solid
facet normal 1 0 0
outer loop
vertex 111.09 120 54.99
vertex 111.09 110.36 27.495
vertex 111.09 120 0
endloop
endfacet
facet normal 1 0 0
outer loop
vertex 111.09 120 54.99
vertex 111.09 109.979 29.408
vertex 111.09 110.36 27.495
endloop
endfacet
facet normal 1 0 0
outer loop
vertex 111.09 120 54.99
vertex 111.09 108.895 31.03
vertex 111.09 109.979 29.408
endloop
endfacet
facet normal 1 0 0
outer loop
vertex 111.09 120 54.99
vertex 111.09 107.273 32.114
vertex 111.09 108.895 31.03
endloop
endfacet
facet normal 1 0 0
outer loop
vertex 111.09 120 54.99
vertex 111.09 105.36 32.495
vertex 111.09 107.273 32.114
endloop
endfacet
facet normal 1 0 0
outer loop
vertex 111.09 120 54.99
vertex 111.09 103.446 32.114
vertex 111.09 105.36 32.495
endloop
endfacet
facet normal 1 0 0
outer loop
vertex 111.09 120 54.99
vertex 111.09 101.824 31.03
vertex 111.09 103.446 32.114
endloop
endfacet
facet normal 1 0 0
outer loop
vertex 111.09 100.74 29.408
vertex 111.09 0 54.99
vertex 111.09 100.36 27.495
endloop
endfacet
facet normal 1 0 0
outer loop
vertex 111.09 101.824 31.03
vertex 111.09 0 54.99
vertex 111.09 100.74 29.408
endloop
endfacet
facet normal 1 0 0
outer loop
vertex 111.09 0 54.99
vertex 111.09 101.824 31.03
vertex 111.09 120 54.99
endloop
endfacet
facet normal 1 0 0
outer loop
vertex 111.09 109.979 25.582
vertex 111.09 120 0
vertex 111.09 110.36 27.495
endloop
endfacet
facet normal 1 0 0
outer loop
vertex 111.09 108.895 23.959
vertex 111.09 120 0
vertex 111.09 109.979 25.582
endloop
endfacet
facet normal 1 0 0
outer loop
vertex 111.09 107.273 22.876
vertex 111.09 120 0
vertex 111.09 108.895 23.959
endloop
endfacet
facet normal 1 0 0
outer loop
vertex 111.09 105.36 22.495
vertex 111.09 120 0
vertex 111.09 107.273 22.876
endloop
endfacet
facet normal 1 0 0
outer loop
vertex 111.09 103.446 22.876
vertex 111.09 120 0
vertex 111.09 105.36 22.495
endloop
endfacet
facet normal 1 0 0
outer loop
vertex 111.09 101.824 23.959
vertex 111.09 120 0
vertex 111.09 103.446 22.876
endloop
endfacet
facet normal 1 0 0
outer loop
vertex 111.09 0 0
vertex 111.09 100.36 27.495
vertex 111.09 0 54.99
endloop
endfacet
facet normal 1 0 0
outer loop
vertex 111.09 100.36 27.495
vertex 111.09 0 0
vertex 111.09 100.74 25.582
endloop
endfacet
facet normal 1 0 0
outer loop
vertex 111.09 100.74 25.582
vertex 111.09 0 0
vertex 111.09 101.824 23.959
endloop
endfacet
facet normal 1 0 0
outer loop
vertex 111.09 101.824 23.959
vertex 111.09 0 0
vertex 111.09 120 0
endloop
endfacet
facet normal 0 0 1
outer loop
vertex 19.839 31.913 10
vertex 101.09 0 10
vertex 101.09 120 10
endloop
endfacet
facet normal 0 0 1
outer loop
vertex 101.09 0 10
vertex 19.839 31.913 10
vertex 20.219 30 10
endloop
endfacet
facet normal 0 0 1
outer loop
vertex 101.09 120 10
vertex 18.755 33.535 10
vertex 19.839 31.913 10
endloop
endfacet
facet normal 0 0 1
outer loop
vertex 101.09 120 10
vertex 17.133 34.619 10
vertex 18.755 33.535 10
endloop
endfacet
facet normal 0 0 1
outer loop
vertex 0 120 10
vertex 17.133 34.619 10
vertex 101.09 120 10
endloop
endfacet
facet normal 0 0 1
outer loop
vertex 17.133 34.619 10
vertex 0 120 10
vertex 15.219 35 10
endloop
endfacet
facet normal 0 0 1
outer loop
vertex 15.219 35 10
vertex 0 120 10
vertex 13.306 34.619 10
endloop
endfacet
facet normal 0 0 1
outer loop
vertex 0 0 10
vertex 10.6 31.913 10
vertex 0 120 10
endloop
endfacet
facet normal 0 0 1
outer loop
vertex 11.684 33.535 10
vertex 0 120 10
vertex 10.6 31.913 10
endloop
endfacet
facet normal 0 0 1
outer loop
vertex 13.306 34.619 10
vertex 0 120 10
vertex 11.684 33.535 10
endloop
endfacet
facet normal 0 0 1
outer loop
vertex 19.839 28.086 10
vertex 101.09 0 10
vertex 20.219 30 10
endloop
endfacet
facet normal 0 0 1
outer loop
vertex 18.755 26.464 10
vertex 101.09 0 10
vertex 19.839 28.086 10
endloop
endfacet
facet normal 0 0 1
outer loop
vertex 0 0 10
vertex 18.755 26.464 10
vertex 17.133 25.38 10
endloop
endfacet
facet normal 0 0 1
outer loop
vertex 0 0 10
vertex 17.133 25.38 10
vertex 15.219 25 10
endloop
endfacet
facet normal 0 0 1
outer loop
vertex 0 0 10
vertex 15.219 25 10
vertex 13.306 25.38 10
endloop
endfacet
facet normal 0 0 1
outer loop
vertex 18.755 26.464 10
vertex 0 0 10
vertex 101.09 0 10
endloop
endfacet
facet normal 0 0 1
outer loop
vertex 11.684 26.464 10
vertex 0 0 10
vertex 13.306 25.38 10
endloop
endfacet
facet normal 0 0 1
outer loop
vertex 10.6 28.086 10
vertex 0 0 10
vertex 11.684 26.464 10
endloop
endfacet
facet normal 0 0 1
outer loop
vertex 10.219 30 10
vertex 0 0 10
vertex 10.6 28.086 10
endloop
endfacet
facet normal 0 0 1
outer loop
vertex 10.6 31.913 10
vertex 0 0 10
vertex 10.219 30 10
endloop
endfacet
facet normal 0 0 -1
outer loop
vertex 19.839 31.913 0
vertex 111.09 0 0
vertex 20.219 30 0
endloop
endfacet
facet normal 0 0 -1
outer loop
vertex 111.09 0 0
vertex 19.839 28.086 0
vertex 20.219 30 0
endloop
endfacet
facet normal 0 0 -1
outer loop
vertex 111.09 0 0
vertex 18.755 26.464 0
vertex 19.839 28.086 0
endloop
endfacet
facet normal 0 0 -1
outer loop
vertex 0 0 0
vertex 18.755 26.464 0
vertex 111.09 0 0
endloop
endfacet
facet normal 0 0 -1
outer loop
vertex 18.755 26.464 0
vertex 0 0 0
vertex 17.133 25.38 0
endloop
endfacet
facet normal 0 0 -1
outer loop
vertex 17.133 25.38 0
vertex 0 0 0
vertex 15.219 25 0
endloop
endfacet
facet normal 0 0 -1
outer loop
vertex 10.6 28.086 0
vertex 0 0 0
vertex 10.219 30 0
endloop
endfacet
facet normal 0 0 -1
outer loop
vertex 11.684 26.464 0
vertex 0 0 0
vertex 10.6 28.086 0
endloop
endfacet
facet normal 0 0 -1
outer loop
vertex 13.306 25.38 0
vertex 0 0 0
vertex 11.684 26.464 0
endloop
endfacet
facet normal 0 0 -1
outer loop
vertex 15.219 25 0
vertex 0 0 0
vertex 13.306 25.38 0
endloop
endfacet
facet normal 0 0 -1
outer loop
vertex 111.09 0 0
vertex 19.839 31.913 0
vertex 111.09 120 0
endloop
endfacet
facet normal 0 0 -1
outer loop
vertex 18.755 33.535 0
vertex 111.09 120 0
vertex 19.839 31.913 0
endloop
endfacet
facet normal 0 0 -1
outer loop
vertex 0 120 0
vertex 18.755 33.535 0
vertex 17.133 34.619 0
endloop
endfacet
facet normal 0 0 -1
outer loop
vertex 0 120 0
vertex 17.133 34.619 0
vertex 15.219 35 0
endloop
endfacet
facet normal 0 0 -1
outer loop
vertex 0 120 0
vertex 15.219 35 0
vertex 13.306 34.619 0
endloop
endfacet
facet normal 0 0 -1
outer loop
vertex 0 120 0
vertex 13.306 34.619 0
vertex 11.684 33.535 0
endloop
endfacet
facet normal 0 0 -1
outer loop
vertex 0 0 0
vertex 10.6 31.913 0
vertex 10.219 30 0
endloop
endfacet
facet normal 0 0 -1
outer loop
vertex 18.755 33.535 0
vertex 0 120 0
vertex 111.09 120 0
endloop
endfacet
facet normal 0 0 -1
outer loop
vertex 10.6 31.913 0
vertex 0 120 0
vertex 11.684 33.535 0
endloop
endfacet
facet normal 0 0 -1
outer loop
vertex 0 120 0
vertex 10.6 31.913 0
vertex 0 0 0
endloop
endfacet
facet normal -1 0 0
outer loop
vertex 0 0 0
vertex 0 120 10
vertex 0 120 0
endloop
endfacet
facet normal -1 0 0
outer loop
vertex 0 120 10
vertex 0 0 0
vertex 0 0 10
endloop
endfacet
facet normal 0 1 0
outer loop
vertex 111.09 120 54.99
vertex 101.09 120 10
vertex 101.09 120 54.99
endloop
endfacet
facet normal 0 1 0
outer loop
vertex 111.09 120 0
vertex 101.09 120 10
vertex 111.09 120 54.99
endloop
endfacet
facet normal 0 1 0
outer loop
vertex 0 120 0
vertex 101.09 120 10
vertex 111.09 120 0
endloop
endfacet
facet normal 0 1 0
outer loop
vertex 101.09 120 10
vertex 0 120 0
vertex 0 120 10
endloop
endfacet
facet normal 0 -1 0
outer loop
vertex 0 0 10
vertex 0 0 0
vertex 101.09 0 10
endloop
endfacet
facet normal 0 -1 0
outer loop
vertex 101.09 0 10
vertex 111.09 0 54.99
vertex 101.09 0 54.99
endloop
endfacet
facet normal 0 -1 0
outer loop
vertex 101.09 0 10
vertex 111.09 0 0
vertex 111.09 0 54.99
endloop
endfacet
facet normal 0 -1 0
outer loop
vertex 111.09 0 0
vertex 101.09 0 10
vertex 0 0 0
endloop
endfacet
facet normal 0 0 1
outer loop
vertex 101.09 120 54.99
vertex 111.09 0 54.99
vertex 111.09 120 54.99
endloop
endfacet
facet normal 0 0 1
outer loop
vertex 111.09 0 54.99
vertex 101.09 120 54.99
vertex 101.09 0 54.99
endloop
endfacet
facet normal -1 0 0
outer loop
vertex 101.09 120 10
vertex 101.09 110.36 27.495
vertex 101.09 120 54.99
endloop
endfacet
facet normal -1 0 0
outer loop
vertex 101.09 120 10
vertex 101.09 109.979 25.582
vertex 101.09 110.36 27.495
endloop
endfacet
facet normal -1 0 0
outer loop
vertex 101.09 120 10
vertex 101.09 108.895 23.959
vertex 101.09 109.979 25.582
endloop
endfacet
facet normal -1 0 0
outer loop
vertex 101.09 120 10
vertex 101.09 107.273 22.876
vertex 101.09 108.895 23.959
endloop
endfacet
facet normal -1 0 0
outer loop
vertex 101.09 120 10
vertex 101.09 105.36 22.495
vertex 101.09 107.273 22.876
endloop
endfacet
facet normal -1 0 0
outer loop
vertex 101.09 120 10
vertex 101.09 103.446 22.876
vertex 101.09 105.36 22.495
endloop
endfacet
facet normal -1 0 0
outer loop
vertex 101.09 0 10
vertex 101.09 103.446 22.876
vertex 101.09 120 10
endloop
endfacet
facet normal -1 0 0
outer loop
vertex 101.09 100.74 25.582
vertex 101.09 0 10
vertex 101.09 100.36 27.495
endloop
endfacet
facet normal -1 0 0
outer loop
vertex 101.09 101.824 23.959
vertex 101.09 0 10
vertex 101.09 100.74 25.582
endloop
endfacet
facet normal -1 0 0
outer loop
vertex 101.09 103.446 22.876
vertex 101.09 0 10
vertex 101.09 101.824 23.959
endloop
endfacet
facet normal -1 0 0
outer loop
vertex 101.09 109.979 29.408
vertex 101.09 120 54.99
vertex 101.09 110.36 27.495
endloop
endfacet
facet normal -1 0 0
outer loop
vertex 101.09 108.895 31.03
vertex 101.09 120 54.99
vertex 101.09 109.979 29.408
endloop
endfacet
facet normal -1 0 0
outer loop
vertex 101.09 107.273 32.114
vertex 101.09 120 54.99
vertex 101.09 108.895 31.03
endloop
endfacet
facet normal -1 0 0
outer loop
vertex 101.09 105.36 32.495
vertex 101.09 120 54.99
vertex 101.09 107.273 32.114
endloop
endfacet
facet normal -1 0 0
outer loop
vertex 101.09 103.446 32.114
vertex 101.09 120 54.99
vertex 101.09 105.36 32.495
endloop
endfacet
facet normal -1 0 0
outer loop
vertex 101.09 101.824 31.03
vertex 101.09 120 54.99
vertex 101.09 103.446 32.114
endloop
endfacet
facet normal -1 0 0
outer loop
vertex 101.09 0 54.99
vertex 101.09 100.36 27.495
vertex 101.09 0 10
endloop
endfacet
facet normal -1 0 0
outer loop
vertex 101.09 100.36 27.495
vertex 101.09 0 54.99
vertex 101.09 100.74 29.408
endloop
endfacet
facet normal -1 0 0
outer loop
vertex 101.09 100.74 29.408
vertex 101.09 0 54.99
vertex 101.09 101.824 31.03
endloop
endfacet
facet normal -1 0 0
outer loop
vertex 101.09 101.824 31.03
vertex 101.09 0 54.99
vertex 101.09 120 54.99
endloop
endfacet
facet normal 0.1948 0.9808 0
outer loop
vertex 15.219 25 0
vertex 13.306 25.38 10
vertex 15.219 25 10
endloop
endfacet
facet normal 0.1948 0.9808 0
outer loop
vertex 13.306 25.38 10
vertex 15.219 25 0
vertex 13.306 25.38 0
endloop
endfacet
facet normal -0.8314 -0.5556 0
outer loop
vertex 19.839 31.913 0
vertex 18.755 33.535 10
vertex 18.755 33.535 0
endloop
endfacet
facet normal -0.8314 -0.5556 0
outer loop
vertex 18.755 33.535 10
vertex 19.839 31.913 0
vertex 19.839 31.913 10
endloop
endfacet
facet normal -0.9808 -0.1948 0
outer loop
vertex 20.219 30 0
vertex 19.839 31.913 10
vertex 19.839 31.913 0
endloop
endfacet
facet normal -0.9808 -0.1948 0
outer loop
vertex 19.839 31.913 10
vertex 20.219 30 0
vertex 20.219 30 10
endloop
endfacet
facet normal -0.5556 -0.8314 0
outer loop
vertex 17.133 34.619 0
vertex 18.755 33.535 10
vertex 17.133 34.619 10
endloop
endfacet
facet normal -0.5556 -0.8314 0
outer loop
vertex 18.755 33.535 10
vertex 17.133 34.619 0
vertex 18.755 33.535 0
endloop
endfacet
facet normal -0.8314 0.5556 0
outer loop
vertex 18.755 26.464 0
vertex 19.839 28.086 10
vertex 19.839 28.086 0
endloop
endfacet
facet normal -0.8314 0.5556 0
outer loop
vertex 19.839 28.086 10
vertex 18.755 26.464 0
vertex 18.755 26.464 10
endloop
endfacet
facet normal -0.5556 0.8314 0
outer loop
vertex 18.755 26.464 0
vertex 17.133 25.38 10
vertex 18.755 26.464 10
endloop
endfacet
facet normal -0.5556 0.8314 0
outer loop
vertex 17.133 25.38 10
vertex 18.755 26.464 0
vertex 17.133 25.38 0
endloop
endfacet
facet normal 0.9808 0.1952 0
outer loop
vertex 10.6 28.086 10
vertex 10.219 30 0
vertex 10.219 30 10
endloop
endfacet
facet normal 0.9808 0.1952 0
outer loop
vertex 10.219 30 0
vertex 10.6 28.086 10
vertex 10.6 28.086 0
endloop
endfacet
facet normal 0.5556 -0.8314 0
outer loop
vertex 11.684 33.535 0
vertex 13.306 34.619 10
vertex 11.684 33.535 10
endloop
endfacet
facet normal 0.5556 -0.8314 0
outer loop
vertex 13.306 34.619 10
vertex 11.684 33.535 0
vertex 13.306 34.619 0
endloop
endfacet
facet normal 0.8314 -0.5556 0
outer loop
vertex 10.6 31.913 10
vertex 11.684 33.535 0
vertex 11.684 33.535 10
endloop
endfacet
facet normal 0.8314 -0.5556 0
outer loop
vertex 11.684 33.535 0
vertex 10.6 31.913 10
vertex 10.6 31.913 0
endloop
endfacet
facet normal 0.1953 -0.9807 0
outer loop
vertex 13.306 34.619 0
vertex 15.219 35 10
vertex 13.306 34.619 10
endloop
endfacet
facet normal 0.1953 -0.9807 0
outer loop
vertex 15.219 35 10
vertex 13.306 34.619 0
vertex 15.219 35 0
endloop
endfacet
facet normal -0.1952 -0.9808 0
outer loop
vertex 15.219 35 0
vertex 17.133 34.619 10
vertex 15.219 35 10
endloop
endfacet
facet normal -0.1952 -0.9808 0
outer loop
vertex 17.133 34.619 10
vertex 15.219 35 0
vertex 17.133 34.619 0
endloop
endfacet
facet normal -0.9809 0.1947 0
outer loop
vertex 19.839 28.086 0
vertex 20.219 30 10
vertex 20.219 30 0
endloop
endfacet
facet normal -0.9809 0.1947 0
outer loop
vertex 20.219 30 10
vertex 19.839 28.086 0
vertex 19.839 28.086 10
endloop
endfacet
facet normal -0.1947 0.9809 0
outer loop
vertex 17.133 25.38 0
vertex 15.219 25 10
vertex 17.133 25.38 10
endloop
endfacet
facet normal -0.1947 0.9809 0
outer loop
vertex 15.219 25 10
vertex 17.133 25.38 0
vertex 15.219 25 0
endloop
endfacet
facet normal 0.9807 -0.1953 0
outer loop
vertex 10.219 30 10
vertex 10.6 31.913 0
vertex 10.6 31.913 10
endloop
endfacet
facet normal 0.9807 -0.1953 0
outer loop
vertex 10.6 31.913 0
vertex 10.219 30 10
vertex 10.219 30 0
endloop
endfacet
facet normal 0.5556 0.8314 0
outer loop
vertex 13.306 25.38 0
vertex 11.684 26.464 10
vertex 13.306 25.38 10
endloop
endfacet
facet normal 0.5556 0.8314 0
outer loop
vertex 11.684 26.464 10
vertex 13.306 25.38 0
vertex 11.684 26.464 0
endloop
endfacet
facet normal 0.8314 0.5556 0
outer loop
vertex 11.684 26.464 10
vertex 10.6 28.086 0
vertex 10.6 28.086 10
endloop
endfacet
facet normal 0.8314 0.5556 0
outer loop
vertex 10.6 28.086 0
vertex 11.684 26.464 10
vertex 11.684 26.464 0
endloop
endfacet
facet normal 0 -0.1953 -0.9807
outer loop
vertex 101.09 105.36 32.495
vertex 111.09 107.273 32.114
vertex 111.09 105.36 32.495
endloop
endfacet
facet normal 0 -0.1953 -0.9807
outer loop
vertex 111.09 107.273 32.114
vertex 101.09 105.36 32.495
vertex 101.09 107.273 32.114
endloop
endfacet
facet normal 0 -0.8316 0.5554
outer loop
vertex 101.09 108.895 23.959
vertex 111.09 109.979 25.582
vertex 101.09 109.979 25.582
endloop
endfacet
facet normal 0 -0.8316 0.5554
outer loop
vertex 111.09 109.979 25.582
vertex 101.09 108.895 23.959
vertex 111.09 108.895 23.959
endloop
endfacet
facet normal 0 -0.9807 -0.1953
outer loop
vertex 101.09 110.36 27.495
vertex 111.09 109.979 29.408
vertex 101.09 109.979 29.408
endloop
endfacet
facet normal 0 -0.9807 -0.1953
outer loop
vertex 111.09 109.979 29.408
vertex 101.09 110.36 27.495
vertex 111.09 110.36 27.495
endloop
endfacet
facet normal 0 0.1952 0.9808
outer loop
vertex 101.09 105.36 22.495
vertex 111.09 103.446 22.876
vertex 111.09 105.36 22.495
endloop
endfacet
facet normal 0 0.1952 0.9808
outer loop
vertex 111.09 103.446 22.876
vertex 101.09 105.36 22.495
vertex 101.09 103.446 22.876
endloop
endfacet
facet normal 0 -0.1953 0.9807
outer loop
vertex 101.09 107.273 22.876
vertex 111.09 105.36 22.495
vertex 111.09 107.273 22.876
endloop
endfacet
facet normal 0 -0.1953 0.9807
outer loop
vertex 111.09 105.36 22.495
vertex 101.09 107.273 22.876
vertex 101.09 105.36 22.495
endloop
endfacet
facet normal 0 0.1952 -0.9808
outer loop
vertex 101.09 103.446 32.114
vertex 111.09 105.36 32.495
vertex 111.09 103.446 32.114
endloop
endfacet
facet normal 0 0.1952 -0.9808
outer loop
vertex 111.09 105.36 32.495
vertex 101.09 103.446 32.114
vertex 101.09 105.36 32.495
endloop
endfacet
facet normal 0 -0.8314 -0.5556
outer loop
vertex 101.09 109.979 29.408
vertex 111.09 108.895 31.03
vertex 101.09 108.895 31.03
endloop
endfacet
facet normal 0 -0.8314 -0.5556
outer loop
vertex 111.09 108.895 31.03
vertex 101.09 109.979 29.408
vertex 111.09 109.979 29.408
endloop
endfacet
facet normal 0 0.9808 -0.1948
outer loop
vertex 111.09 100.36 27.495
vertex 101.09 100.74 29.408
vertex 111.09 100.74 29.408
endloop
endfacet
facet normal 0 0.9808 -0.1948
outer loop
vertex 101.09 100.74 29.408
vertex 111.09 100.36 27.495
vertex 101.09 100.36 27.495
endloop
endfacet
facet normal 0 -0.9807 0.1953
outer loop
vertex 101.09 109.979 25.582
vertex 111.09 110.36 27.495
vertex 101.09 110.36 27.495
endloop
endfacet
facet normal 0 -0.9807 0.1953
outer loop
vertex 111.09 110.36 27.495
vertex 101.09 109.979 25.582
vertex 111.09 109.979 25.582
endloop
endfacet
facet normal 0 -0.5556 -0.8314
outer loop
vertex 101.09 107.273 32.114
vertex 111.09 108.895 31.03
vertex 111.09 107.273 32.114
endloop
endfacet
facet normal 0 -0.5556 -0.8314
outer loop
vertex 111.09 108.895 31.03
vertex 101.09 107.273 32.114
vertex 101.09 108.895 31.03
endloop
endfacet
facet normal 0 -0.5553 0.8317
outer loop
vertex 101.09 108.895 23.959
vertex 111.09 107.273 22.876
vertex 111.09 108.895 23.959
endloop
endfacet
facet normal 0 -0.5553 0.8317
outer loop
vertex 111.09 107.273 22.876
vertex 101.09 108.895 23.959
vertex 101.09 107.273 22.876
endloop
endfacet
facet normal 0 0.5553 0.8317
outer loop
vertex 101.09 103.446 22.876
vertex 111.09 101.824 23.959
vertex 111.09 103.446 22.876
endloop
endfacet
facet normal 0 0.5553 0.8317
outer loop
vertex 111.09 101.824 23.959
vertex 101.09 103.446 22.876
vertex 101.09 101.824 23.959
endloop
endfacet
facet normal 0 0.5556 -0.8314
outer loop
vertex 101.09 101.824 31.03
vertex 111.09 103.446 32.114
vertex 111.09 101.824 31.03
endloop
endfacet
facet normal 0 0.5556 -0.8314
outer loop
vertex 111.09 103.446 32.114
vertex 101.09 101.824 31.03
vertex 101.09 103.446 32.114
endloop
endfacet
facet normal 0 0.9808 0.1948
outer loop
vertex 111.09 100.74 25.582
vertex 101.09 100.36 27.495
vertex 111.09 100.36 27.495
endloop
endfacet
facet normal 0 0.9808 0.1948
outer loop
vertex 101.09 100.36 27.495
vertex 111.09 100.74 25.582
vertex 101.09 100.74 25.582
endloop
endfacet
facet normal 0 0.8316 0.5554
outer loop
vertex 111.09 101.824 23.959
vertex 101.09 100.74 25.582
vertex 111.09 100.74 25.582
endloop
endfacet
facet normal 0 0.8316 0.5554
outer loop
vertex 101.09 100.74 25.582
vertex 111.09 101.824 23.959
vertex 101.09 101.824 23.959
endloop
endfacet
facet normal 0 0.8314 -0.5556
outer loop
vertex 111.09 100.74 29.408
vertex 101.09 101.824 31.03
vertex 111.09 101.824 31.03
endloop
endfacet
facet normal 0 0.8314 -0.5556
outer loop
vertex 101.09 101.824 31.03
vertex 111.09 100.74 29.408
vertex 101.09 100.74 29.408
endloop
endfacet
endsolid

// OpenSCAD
/* doodle-meta {"version":1,"parameters":{"width":{"label":"Overall width","description":"Changes the overall width of the bracket along the X-axis","unit":"mm","feature":"body_width"},"depth":{"label":"Overall depth","description":"Changes the overall depth of the bracket along the Y-axis","unit":"mm","feature":"body_depth"},"height":{"label":"Overall height","description":"Changes the overall height of the bracket along the Z-axis","unit":"mm","feature":"body_height"},"base_thickness":{"label":"Base thickness","description":"Changes the thickness of the horizontal base plate","unit":"mm","feature":"base_thickness"},"wall_thickness":{"label":"Wall thickness","description":"Changes the thickness of the vertical back wall","unit":"mm","feature":"wall_thickness"},"rib_thickness":{"label":"Rib thickness","description":"Changes the thickness of the angled support rib","unit":"mm","feature":"rib_thickness"},"hole_diameter":{"label":"Hole diameter","description":"Changes the diameter of the mounting holes","unit":"mm","feature":"holes"}},"features":{"body_width":{"kind":"dimension","axis":"x","label":"Overall width"},"body_depth":{"kind":"dimension","axis":"y","label":"Overall depth"},"body_height":{"kind":"dimension","axis":"z","label":"Overall height"},"base_thickness":{"kind":"region","label":"Base plate","min":[0,0,0],"max":[{"parameter":"width"},{"parameter":"depth"},{"parameter":"base_thickness"}]},"wall_thickness":{"kind":"region","label":"Vertical wall","min":[{"parameter":"width","scale":0.8,"offset":0},0,0],"max":[{"parameter":"width"},{"parameter":"depth"},{"parameter":"height"}]},"rib_thickness":{"kind":"region","label":"Support rib","min":[{"parameter":"width","scale":0.5},{"parameter":"depth","scale":0.4},{"parameter":"base_thickness"}],"max":[{"parameter":"width","scale":0.8},{"parameter":"depth","scale":0.6},{"parameter":"height","scale":0.8}]},"holes":{"kind":"region","label":"Mounting holes","min":[{"parameter":"width","scale":0.1},{"parameter":"depth","scale":0.1},0],"max":[{"parameter":"width","scale":0.9},{"parameter":"depth","scale":0.9},{"parameter":"height"}]}}} */

// Overall dimensions
width = 111.08963432995365;
depth = 119.99960500130018;
height = 54.989818991845816;

// Component thicknesses
base_thickness = 9.999967083441684;
wall_thickness = 9.999967083441684;
rib_thickness = 9.999967083441684;

// Hole parameters
hole_diameter = 9.999967083441684;

// Derived positions
wall_x_start = width - wall_thickness;
rib_x_start = wall_x_start - rib_thickness;
rib_top_z = height - base_thickness;

// Hole positions (derived from view measurements)
// Top view mapping: X = u * width, Y = (1-v) * depth
// Hole 1 (Base): u=0.137, v=0.75 -> X=9.5, Y=18.7
// Hole 2 (Wall): u=0.849, v=0.122 -> X=58.9, Y=65.8
hole1_x = 0.137 * width;
hole1_y = (1 - 0.75) * depth;
hole2_x = 0.849 * width;
hole2_y = (1 - 0.122) * depth;
hole2_z = height / 2; // Centered vertically in the wall

// Epsilon for clean cuts
eps = 0.01;

module base_plate() {
    cube([width, depth, base_thickness]);
}

module vertical_wall() {
    translate([wall_x_start, 0, 0])
        cube([wall_thickness, depth, height]);
}

module support_rib() {
    // Triangular rib connecting wall to base
    // Vertices in XZ plane (extruded along Y)
    // (rib_x_start, base_thickness) -> (wall_x_start, base_thickness) -> (wall_x_start, rib_top_z)
    polygon([
        [rib_x_start, base_thickness],
        [wall_x_start, base_thickness],
        [wall_x_start, rib_top_z]
    ]);
}

module rib_extrusion() {
    linear_extrude(height = rib_thickness)
        support_rib();
}

module hole_base() {
    // Hole through base plate (axis along Z)
    translate([hole1_x, hole1_y, -eps])
        cylinder(h = base_thickness + 2*eps, d = hole_diameter, center = false);
}

module hole_wall() {
    // Hole through vertical wall (axis along X)
    // Wall is at x = wall_x_start .. width
    // Cylinder axis along X, centered at hole2_y, hole2_z
    translate([wall_x_start - eps, hole2_y, hole2_z])
        rotate([0, 90, 0])
            cylinder(h = wall_thickness + 2*eps, d = hole_diameter, center = false);
}

// Main assembly
difference() {
    union() {
        base_plate();
        vertical_wall();
        // Rib is centered in Y
        translate([0, (depth - rib_thickness)/2, 0])
            rib_extrusion();
    }
    hole_base();
    hole_wall();
}
